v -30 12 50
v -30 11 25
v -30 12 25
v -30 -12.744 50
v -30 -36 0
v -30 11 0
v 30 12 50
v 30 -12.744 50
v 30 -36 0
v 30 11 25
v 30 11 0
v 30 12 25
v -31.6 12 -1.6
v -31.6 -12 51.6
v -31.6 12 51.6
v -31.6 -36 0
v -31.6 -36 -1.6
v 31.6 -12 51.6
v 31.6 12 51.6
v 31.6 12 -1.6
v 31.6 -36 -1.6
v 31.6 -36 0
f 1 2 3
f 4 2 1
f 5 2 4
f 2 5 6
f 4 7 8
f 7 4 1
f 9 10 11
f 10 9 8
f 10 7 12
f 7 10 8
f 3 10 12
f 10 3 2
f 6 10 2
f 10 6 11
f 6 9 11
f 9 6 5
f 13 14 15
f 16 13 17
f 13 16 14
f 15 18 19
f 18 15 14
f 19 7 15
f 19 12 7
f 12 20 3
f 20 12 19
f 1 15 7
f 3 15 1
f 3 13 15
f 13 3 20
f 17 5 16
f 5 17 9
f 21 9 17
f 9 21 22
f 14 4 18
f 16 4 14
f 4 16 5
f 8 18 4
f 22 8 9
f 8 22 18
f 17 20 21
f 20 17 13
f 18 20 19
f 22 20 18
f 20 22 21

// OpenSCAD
// file: ../lib/util.scad
left   = -1;
right  = 1;
front  = -1;
rear   = 1;
top    = 1;
bottom = -1;

x = 0;
y = 1;
z = 2;

width  = x;
depth  = y;
height = z;

inch = 25.4;

function accurate_diam(diam,sides) = 1 / cos(180/sides) / 2 * diam;

module hole(diam,len,sides=8) {
  rotate([0,0,180/sides]) {
    cylinder(r=accurate_diam(diam,sides),h=len,center=true,$fn=sides);
  }
}

module accurate_circle(diam,sides=8) {
  rotate([0,0,180/sides]) {
    circle(r=accurate_diam(diam,sides),$fn=sides);
  }
}

module debug_axes() {
  color("red") {
    translate([50,0,0]) cube([100,.2,.2],center=true);
    translate([0,50,0]) cube([.2,100,.2],center=true);
    translate([0,0,50]) cube([.2,.2,100],center=true);
  }
}

module rounded_square(width,height,diam,resolution=16) {
  hull() {
    for(x=[left,right]) {
      for(y=[front,rear]) {
        translate([x*(width/2-diam/2),y*(height/2-diam/2),0]) {
          accurate_circle(diam,resolution);
        }
      }
    }
  }
}
// main file
include <../lib/util.scad>;

resolution      = 64;
extrusion_width = 0.4;

width  = 60;
depth  = 24;
height = 50;
wall_thickness = extrusion_width*4;
shelf_thickness = wall_thickness; // account for the angle that we're printing?

module webcam_shelf() {
  module body() {
    hull() {
      translate([0,0,height+shelf_thickness/2]) {
        cube([width+wall_thickness*2,depth,shelf_thickness],center=true);
      }
      translate([0,-depth/2,-shelf_thickness/2]) {
        cube([width+wall_thickness*2,depth*2,shelf_thickness],center=true);
      }
    }
  }

  module holes() {
    translate([0,0,height*0.75]) {
      cube([width,depth*4,height*0.5],center=true);
    }
    translate([0,(depth/2+1)*front,height*0.3]) {
      cube([width,depth*2,height*0.6],center=true);
    }
  }

  difference() {
    body();
    holes();
  }
}

webcam_shelf();
